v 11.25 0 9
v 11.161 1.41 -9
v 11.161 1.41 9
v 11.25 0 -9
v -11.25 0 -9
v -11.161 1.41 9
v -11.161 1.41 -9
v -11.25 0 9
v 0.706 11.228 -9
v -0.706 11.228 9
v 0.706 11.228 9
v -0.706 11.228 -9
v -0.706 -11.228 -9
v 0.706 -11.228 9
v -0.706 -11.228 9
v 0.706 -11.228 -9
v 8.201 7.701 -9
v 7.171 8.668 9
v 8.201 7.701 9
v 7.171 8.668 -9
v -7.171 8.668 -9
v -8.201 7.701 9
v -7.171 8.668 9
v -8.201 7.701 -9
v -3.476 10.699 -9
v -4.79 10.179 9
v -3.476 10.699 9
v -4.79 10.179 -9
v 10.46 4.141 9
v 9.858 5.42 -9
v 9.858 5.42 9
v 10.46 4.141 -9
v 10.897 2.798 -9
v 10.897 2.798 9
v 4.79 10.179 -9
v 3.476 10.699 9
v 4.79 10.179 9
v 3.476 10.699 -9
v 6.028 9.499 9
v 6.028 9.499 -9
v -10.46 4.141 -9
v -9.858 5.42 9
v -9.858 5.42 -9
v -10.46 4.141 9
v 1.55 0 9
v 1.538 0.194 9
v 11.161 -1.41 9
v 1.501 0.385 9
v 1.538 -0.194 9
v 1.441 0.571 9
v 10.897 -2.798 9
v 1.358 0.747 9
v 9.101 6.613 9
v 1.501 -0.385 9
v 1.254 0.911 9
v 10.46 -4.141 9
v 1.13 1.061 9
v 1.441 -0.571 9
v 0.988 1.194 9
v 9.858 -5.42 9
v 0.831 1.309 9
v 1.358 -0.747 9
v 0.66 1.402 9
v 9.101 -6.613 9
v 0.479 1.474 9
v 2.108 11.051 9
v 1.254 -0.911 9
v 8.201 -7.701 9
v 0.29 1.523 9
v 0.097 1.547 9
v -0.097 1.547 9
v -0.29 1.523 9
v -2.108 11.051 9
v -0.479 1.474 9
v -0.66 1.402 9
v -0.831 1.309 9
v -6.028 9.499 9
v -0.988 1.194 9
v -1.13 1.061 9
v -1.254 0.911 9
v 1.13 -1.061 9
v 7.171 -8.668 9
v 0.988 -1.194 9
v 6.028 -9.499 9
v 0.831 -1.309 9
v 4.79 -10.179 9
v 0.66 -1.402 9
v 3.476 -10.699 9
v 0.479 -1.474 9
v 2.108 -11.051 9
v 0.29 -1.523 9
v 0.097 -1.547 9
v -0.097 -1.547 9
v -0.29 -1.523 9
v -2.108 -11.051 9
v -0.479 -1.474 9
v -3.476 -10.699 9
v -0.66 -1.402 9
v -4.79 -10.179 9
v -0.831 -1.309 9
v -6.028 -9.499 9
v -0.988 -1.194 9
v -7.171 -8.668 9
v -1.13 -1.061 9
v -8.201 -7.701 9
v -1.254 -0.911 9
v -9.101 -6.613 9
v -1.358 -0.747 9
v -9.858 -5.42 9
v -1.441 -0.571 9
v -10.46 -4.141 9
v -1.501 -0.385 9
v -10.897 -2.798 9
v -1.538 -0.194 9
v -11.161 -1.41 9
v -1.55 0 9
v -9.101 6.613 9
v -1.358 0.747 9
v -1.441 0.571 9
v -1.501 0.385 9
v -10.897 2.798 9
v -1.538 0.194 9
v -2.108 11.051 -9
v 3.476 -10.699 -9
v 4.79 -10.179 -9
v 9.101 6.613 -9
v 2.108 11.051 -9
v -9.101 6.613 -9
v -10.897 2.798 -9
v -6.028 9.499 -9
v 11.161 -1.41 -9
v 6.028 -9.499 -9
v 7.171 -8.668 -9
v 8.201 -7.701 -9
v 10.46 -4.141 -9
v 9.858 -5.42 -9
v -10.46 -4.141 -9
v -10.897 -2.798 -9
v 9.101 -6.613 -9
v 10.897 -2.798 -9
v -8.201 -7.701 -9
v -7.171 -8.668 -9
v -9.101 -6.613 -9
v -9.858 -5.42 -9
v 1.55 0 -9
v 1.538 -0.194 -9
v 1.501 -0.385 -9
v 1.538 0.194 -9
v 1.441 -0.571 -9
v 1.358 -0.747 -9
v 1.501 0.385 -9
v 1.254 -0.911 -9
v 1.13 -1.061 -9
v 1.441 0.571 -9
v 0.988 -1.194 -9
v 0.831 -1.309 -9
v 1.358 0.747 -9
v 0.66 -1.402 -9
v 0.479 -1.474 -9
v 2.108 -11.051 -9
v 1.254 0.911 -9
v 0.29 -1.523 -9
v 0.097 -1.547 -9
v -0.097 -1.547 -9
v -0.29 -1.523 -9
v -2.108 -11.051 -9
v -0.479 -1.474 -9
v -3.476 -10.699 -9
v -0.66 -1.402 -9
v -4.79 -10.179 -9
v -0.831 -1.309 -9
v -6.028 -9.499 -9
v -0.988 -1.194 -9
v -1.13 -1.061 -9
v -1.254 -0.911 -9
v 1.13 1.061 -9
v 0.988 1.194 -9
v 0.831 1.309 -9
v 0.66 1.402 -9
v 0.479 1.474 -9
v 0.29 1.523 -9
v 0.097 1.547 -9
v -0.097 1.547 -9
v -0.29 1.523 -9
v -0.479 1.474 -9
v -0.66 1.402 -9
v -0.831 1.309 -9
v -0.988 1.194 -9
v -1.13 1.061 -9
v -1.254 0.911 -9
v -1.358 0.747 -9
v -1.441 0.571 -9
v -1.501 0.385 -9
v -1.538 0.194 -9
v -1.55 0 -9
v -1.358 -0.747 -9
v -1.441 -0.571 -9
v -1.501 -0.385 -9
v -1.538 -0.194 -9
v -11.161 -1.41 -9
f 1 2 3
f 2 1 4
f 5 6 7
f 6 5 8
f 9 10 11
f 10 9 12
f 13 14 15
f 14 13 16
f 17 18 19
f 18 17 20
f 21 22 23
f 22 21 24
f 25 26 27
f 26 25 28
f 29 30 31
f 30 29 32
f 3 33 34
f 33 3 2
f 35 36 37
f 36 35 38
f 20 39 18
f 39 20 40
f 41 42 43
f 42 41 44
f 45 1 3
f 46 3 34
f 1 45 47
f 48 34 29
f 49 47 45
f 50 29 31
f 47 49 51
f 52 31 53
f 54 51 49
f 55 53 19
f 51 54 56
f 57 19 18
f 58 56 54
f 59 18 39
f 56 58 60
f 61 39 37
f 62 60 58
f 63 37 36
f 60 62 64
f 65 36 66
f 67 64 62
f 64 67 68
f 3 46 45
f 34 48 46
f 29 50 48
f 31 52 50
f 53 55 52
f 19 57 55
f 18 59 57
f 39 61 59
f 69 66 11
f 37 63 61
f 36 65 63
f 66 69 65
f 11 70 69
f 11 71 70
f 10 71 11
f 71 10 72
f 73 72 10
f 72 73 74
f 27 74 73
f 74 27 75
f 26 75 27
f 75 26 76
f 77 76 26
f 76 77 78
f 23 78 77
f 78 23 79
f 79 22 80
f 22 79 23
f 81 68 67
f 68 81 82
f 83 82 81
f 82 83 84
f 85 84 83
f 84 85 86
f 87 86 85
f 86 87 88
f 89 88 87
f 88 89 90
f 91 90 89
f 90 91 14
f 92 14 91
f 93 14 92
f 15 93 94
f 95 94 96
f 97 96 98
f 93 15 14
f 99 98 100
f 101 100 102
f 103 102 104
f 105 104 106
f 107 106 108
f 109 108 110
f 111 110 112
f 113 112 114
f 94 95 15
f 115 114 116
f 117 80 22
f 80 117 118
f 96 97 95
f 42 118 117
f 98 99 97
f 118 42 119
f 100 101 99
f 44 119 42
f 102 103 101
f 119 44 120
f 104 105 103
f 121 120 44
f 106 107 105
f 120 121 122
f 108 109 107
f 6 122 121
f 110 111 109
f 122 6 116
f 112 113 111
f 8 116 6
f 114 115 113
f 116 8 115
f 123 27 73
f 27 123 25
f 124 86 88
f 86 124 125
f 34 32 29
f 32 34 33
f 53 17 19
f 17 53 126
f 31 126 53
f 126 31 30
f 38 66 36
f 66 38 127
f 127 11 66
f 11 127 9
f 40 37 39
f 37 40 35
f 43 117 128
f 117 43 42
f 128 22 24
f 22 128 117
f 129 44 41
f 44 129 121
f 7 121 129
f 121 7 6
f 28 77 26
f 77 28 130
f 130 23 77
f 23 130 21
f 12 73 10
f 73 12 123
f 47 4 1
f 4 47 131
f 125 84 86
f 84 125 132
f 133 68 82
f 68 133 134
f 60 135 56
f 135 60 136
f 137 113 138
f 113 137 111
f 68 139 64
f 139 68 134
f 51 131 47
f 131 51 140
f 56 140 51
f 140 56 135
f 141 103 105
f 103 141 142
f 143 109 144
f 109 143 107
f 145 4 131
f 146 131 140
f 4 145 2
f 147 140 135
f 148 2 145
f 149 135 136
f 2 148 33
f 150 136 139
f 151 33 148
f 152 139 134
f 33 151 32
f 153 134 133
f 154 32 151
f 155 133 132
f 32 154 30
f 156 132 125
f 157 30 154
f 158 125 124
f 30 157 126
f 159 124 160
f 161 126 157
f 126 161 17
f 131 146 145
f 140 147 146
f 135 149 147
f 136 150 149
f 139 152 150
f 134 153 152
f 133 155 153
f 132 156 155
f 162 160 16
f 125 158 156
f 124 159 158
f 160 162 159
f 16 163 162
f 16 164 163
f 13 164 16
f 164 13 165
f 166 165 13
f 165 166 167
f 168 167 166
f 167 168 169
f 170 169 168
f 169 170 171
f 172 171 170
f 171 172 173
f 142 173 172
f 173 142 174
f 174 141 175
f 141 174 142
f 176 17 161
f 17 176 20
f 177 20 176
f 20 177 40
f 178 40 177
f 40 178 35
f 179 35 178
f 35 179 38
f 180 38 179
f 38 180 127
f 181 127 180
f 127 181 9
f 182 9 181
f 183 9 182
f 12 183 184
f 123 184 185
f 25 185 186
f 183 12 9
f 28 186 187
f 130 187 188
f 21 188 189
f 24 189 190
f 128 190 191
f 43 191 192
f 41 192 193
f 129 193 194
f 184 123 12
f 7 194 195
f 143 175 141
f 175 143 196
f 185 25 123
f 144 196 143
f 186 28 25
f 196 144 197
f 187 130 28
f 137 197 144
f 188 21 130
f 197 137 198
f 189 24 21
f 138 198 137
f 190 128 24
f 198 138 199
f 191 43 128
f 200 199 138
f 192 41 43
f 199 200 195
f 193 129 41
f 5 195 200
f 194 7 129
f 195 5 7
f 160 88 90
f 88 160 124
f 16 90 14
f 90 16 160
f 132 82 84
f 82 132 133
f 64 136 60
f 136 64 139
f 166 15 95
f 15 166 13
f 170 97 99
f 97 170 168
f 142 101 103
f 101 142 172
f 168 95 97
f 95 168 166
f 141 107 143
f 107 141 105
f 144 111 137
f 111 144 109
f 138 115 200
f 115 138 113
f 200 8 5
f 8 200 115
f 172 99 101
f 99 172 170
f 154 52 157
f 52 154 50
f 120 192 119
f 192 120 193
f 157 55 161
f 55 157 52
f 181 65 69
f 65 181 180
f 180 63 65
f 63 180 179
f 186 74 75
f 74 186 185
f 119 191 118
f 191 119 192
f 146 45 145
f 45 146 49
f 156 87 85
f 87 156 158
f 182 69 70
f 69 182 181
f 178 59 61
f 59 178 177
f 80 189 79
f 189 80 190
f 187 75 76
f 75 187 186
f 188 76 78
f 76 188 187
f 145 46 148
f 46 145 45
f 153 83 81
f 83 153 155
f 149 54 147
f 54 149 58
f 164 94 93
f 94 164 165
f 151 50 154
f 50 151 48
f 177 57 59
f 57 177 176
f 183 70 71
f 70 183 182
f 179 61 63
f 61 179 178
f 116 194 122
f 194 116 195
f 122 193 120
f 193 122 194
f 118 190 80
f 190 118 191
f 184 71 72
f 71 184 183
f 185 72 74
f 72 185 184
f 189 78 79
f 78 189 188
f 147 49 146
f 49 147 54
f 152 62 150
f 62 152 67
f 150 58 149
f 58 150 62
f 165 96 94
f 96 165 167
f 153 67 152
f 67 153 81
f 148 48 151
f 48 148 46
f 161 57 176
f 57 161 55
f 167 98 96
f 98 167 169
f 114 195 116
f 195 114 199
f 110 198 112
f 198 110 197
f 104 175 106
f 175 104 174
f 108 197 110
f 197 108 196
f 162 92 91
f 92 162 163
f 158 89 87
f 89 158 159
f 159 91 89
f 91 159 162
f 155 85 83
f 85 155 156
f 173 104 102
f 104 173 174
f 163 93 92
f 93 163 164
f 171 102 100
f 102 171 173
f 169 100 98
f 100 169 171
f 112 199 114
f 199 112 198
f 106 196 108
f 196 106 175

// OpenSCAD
$fn = 50;


difference() {
	union() {
		translate(v = [0, 0, -9.0000000000]) {
			cylinder(h = 18, r = 11.2500000000);
		}
	}
	union() {
		translate(v = [0, 0, -100.0000000000]) {
			cylinder(h = 200, r = 1.5500000000);
		}
	}
}
